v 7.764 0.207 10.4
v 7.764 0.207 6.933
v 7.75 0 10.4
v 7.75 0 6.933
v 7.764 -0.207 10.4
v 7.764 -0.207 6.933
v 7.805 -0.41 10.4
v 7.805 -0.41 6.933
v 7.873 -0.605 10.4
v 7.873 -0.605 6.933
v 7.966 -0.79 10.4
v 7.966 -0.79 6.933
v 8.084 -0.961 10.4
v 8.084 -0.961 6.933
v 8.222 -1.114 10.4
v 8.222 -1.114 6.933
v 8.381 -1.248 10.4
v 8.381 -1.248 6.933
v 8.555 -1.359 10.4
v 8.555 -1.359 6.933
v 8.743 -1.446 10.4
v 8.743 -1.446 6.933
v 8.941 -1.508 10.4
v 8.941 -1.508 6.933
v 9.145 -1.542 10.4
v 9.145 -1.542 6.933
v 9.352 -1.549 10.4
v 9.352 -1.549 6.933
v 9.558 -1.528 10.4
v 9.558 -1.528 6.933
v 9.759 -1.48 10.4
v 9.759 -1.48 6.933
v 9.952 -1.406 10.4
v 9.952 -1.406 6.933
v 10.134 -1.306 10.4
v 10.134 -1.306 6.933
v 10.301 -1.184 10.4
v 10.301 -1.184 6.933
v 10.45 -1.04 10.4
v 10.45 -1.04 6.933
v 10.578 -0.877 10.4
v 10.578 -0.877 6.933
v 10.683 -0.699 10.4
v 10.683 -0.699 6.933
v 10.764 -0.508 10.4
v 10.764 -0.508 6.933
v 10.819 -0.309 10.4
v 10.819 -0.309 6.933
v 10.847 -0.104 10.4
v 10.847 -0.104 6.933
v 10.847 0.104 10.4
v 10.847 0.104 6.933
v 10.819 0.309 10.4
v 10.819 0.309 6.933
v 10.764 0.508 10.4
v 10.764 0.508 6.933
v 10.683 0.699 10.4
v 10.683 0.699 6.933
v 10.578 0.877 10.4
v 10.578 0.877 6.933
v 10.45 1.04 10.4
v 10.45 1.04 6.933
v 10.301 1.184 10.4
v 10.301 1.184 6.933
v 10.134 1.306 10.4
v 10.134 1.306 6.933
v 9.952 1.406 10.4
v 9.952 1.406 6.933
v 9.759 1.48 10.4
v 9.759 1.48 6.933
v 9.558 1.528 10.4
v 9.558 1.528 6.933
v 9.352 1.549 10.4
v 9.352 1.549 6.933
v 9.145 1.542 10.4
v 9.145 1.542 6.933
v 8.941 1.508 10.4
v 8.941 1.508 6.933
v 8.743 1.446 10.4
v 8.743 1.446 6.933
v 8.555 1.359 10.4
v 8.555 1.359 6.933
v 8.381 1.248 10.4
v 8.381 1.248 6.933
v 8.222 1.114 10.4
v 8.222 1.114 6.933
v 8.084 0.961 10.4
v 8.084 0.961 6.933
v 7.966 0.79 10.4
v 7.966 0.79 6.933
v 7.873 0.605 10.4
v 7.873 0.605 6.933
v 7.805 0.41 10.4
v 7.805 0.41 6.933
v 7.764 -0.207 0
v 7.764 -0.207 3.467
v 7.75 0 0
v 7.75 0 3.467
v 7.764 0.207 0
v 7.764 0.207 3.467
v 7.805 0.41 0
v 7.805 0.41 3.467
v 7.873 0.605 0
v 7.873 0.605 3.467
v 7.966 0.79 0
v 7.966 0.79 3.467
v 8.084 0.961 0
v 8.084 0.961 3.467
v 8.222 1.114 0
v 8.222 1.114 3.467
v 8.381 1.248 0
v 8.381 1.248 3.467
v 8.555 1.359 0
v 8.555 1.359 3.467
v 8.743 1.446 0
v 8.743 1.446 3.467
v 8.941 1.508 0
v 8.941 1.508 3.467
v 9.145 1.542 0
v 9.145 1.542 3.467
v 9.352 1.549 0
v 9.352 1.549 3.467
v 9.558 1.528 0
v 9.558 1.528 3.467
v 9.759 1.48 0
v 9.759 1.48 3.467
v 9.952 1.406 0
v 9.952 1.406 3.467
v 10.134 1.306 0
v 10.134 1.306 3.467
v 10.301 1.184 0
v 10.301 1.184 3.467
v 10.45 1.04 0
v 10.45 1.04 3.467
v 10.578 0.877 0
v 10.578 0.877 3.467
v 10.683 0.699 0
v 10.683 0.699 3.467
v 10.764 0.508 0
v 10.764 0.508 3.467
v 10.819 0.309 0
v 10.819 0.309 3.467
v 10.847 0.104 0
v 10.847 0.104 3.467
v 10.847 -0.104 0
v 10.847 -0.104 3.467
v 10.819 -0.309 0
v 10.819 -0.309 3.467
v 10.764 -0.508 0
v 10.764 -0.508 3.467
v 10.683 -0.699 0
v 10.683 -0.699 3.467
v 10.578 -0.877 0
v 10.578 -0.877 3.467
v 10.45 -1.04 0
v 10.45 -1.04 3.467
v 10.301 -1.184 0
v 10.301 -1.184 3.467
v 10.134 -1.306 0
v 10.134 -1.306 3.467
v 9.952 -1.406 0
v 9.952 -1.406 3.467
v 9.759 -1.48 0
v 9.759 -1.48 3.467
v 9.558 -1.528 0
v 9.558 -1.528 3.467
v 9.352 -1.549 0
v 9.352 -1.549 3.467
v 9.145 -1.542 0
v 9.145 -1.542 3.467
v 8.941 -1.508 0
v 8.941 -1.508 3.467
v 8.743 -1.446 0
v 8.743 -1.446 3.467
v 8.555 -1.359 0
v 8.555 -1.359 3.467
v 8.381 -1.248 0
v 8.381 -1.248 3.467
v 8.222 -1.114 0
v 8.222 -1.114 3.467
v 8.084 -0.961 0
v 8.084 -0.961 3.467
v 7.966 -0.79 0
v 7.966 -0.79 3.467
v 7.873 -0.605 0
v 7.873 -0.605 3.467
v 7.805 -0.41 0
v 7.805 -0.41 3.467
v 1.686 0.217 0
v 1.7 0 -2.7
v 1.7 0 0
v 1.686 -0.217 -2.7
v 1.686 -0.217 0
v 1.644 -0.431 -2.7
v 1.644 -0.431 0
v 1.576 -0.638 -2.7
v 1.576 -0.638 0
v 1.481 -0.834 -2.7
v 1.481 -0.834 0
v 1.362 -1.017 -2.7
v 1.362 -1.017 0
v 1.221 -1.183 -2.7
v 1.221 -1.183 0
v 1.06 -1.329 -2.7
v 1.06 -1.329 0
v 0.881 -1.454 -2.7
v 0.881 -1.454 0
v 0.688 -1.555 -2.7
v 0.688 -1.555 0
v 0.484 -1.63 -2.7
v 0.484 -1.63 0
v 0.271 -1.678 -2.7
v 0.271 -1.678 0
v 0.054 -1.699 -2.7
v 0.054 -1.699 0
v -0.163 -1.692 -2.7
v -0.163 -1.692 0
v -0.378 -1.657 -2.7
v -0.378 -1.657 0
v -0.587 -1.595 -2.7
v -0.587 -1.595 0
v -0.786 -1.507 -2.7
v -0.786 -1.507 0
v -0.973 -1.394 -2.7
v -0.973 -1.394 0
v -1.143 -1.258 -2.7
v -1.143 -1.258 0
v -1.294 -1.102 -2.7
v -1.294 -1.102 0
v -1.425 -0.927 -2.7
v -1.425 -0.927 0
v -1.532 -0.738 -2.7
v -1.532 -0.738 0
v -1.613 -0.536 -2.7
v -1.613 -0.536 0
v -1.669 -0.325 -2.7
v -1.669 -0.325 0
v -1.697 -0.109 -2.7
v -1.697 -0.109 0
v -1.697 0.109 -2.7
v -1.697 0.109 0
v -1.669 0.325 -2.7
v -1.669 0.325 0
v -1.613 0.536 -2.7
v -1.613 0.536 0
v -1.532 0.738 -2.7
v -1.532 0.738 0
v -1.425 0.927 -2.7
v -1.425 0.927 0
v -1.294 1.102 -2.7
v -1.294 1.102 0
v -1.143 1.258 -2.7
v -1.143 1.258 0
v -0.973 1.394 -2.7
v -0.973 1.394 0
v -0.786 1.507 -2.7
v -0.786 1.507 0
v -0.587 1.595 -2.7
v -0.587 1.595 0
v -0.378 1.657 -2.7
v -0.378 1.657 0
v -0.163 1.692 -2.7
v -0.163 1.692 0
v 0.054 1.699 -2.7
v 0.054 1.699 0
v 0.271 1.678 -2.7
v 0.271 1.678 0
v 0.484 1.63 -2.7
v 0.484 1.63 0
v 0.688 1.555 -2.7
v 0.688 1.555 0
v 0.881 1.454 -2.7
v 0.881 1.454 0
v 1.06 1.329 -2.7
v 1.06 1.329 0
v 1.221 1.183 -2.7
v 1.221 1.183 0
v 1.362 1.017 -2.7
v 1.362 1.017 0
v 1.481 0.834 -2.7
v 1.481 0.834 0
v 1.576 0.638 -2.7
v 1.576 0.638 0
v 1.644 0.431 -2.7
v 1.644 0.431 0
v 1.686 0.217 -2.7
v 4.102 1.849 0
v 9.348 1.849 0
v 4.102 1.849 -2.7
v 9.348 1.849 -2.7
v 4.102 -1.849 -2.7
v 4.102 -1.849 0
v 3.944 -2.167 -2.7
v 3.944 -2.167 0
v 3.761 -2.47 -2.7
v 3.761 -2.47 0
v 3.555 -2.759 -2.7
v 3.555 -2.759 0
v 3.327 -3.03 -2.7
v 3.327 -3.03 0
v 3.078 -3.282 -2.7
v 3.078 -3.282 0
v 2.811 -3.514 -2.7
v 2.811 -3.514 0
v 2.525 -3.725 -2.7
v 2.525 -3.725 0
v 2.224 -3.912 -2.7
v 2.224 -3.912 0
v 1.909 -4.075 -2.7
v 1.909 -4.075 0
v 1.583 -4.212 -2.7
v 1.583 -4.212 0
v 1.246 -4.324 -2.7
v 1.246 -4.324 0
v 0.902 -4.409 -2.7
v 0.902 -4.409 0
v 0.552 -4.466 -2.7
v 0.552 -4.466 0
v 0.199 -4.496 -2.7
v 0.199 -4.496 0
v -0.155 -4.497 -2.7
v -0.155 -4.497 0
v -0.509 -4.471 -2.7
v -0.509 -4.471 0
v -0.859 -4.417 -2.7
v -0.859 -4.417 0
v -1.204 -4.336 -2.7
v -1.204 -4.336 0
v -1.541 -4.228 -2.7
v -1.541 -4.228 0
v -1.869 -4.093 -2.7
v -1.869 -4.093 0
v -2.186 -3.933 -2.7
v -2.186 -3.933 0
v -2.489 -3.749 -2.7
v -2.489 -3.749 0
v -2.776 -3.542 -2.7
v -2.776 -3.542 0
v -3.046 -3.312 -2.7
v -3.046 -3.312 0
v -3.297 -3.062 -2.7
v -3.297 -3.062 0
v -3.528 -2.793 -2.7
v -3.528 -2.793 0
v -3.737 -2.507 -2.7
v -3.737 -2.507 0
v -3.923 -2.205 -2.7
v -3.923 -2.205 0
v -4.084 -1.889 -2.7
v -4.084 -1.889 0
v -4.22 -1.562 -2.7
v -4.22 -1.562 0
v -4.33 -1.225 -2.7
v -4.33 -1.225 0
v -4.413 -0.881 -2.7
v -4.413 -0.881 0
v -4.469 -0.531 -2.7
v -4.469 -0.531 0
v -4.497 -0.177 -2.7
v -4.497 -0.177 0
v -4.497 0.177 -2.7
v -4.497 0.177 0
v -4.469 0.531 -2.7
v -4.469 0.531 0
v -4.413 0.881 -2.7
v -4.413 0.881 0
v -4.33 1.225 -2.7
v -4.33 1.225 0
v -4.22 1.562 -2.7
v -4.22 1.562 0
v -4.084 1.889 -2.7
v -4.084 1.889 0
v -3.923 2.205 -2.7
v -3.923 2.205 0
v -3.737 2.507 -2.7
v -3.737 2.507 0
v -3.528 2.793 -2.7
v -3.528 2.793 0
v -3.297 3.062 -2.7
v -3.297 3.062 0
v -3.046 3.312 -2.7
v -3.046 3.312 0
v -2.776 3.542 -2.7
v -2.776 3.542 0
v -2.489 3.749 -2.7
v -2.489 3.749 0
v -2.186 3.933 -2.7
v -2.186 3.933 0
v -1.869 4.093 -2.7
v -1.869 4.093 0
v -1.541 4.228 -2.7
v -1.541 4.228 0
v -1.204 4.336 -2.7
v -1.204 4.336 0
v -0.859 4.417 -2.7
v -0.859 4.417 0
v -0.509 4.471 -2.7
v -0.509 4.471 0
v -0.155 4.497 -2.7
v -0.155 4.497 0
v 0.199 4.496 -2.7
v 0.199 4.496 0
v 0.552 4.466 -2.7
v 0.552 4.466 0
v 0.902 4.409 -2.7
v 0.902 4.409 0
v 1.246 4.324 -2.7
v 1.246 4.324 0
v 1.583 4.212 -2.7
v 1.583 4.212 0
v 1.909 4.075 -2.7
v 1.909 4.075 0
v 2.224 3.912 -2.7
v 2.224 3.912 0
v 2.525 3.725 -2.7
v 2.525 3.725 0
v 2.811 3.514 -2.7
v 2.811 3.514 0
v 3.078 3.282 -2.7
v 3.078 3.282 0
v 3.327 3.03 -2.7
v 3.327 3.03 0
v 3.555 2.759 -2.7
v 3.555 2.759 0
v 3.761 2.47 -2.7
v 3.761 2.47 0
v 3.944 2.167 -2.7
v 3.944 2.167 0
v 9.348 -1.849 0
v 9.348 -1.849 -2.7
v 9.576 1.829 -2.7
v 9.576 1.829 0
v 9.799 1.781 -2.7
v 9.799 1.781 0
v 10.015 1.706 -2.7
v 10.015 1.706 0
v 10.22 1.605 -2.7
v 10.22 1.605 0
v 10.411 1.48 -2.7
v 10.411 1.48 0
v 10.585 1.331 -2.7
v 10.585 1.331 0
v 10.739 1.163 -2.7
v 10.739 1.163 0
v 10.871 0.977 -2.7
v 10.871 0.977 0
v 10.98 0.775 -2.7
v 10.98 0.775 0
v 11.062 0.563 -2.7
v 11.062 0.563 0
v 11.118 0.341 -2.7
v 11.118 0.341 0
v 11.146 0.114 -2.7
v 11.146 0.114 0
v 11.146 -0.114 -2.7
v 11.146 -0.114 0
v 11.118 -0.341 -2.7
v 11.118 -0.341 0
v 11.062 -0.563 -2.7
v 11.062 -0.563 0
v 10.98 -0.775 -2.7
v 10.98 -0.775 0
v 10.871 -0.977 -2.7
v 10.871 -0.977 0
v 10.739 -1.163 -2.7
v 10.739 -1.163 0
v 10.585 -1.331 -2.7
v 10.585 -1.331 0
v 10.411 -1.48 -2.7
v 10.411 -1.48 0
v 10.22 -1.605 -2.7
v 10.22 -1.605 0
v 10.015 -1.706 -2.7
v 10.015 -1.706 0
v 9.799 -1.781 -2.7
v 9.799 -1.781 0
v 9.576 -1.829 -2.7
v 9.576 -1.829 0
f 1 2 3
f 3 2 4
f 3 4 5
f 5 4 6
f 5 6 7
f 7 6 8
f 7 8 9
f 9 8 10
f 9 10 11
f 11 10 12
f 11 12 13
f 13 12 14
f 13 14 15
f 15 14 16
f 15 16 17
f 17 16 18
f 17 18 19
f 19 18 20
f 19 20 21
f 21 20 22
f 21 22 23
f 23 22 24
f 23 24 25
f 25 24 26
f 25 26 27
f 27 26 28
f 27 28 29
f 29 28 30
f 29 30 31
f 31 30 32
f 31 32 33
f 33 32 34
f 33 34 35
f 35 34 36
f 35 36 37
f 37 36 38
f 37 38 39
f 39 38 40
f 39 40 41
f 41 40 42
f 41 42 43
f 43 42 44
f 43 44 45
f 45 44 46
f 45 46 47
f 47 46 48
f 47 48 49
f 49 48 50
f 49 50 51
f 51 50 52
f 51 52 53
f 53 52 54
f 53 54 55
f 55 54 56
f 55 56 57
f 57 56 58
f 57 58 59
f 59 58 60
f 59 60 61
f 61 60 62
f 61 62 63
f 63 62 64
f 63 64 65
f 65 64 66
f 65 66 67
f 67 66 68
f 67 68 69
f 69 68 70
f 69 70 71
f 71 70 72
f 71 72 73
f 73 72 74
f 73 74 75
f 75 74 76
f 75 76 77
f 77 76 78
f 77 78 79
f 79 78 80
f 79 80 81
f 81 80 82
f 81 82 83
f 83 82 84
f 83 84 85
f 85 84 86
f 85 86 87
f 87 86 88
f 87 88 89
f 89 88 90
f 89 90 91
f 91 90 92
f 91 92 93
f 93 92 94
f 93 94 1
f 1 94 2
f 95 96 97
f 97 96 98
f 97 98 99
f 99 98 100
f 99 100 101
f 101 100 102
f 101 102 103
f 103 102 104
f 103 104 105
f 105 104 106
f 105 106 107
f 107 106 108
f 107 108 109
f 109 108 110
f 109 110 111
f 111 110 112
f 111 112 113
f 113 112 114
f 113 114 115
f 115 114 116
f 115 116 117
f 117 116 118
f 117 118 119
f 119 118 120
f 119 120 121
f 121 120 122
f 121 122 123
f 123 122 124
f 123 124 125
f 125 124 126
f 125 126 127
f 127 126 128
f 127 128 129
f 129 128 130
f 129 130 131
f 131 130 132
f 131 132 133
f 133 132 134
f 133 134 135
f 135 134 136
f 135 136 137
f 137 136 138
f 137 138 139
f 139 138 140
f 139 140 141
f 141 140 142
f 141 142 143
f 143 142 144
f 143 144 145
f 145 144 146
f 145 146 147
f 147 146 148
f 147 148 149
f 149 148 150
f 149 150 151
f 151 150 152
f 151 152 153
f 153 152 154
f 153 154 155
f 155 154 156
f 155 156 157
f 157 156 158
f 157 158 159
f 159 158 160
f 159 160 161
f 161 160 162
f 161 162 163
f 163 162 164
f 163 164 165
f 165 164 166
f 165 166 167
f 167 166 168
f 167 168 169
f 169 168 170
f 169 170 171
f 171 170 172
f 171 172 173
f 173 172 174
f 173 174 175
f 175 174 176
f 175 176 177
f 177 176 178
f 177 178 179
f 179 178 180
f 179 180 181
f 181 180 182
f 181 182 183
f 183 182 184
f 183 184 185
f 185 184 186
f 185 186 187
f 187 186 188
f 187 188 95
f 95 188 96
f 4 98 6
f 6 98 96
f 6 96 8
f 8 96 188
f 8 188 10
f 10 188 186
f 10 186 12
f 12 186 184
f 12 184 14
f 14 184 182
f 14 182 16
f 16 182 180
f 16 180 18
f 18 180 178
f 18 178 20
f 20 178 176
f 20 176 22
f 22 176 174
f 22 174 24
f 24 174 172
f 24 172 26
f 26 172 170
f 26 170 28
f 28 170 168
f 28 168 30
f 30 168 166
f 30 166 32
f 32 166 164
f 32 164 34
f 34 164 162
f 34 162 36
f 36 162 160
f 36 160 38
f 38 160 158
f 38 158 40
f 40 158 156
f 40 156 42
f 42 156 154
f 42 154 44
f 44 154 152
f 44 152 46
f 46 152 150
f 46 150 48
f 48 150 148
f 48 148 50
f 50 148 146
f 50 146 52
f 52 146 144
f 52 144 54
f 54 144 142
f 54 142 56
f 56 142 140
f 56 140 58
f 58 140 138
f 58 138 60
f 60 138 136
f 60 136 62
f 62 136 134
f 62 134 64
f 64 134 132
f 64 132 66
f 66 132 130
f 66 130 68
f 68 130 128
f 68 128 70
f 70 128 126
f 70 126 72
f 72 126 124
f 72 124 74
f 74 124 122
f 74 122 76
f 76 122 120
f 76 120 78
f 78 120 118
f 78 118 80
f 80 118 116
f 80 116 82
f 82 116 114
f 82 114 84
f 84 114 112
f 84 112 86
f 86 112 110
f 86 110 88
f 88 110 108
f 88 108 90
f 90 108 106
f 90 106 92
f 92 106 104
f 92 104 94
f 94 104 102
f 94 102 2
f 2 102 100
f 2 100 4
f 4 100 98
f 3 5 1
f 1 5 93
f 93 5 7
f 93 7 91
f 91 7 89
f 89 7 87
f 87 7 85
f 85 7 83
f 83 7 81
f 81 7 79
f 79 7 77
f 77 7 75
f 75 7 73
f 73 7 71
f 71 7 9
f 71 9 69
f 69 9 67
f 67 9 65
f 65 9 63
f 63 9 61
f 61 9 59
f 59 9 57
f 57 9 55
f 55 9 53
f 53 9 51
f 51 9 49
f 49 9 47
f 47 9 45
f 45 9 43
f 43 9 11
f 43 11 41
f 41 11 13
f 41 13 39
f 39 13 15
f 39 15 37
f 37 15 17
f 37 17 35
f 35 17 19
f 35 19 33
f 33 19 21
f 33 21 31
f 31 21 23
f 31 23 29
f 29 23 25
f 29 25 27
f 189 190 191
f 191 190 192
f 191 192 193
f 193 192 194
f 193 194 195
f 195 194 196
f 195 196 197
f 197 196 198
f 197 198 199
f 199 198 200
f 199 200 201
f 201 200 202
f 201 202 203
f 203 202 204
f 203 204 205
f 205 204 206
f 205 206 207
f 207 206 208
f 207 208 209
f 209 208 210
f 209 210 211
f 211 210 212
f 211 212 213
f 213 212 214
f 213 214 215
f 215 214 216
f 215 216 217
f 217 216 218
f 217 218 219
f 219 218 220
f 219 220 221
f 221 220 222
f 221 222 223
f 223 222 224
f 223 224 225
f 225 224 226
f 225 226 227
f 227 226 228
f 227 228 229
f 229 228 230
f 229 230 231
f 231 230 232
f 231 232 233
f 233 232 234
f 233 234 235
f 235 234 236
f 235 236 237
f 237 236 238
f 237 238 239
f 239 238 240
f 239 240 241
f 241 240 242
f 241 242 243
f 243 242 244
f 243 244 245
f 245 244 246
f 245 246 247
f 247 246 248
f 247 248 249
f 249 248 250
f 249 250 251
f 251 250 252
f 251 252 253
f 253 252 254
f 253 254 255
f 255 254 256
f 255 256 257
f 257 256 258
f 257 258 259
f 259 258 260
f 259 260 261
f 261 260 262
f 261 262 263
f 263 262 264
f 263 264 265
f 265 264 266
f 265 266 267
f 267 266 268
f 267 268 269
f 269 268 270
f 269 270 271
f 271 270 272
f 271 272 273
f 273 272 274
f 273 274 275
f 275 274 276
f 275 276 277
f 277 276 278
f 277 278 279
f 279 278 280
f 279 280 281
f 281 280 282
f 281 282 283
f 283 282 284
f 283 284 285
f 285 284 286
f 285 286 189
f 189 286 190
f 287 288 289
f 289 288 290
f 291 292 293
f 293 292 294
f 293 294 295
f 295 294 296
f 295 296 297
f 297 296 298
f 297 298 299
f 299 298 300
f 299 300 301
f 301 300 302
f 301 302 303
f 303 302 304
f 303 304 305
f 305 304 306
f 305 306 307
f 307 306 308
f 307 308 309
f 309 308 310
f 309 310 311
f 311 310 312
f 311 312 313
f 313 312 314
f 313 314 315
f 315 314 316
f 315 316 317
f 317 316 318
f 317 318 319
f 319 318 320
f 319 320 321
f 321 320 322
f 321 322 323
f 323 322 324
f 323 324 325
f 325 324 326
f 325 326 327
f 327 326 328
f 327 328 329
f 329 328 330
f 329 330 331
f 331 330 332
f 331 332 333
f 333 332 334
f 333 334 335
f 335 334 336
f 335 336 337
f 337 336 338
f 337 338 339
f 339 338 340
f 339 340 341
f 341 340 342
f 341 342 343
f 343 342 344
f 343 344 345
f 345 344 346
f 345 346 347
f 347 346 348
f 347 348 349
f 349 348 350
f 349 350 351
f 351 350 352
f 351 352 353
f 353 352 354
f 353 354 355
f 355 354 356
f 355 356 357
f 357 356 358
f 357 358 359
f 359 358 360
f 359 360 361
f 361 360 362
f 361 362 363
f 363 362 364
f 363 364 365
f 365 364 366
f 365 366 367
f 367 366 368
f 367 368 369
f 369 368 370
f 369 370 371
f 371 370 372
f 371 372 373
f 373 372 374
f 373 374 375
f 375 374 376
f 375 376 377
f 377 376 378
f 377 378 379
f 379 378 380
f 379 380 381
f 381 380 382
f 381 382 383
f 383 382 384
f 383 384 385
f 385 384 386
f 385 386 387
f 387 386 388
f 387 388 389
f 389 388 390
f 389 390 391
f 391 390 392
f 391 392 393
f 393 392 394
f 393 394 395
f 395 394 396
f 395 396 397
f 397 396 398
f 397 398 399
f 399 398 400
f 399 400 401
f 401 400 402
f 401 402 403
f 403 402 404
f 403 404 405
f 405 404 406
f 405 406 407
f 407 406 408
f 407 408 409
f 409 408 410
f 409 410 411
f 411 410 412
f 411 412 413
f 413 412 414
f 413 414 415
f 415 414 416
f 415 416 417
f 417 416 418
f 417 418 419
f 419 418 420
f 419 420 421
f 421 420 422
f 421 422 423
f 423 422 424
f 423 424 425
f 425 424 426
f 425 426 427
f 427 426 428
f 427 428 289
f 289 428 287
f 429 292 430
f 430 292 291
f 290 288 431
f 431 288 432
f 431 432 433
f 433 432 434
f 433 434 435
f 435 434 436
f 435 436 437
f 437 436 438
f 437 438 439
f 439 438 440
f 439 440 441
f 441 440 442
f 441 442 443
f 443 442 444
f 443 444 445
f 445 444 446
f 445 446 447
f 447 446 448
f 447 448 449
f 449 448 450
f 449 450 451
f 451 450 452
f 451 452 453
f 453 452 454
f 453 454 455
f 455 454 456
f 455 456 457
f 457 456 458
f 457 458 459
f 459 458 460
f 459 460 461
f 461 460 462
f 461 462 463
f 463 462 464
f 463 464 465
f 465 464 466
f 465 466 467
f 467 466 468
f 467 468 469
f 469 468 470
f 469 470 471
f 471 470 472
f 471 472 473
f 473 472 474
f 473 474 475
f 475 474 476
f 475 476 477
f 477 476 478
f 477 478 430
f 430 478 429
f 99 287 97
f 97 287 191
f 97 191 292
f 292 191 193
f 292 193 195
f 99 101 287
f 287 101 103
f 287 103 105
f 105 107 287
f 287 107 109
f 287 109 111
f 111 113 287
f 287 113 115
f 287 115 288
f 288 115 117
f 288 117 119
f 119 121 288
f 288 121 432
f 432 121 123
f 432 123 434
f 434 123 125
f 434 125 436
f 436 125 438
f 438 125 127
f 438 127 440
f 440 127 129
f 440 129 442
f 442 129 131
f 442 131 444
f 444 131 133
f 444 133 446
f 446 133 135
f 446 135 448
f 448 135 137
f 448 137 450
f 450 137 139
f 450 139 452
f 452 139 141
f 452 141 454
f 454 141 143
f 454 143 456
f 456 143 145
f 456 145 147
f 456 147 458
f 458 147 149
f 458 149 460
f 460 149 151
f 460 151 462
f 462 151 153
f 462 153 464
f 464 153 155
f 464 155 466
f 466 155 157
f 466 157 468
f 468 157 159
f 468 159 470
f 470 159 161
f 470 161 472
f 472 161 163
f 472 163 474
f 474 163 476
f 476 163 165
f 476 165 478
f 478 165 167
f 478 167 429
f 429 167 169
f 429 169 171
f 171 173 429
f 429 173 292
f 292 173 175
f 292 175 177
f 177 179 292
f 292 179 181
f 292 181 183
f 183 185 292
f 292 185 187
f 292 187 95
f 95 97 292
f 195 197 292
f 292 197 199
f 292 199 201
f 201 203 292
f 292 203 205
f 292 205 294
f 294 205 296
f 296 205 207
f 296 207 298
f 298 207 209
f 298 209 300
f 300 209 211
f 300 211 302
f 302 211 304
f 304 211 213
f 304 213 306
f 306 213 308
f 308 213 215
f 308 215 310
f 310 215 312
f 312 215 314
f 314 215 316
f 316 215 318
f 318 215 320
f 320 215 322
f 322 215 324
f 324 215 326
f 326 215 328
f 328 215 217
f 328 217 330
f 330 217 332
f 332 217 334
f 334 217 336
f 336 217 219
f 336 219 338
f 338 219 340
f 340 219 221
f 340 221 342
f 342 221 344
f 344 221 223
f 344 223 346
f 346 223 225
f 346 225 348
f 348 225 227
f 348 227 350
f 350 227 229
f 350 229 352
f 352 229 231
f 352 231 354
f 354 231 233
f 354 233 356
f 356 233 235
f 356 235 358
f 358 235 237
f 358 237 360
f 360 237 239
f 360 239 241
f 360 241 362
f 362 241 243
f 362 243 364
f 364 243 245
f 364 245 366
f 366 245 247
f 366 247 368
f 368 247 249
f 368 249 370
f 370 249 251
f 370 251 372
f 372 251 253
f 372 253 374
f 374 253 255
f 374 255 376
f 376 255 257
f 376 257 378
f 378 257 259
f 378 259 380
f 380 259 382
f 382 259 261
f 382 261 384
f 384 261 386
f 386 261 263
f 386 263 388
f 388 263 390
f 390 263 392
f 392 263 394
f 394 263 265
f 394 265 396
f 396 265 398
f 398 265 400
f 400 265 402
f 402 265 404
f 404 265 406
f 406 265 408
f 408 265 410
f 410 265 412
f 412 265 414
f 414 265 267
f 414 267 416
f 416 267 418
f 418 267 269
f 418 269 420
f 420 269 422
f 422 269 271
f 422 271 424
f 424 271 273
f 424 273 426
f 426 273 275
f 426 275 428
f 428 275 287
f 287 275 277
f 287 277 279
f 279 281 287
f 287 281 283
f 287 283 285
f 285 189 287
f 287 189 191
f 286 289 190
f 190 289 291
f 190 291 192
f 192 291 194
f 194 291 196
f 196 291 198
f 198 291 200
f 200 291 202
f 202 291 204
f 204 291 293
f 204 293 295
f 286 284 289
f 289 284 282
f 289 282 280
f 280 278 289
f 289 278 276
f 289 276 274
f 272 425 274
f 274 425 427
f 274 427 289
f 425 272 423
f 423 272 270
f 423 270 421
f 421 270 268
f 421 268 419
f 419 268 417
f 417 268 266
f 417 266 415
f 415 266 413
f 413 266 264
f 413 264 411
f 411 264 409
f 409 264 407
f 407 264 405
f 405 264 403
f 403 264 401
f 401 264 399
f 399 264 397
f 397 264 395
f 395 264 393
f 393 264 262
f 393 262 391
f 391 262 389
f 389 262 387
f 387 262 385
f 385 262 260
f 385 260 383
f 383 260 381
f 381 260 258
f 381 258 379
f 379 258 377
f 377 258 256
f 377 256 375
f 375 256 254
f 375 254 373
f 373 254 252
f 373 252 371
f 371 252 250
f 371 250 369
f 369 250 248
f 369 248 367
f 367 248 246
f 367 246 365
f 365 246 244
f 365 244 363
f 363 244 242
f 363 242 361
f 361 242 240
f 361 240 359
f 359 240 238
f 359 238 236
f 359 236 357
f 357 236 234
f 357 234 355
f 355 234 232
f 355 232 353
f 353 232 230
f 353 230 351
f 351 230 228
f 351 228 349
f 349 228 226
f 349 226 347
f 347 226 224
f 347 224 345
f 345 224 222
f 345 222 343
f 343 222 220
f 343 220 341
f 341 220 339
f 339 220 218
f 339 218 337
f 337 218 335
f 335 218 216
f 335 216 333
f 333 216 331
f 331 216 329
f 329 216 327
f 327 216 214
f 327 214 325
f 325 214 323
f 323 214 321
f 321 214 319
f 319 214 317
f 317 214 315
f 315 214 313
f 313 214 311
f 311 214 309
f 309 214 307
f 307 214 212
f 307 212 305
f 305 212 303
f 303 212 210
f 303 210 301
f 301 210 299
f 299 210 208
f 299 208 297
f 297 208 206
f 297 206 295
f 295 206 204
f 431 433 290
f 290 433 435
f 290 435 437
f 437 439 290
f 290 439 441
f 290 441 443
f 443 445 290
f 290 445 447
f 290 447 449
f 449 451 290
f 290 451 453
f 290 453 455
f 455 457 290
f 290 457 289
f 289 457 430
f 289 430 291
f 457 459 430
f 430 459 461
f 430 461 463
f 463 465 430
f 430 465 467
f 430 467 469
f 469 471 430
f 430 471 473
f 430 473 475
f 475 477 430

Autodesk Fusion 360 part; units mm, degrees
sketch "Sketch5" plane through (0, 0, 0) normal (0, 0, 1) x (1, 0, 0)
  line L0 (9.3481, 1.8494) -> (4.1024, 1.8494)
  line L1 (9.3481, -1.8494) -> (4.1024, -1.8494)
  arc A0 (9.2519, -1.8494) -> (9.2519, 1.8494) centre (9.3, 0) ccw
  arc A1 (4.1024, 1.8494) -> (4.1024, -1.8494) centre (0, 0) ccw
  dimension "d23" = 9
  dimension "d24" = 3.7
  dimension "d25" = 9.3
sketch "Sketch6" plane through (0, 0, 0) normal (0, 0, 1) x (1, 0, 0)
  circle A0 centre (0, 0) radius 1.7
  dimension "d26" = 3.4
extrude "Extrude6" add sketch "Sketch5" against normal blind 2.7
hole "Hole2" at (0, 0, 0) direction (0, 0, -1) diameter 3.4 depth 2.7 tip angle 118
sketch "Sketch7" plane through (0, 0, 0) normal (0, 0, 1) x (1, 0, 0)
  circle A0 centre (9.3, 0) radius 1.55
  dimension "d32" = 3.1
  dimension "d33" = 9.3
extrude "Extrude7" add sketch "Sketch7" along normal blind 10.4
sketch "Sketch1" plane through (0, 0, 0) normal (0, 0, 1) x (1, 0, 0)
  circle A0 centre (0, 0) radius 10.7065
  dimension "d1" = 21.413
extrude "Extrude1" [suppressed]
sketch "Sketch2" plane through (0, 0, 0) normal (0, 0, 1) x (1, 0, 0)
  circle A0 centre (0, 0) radius 1.5
  dimension "d4" = 3
sketch "Sketch3" plane through (0, 0, 0) normal (0, 0, 1) x (1, 0, 0)
  circle A0 centre (0, 0) radius 1.5
  circle A1 centre (7.5, 0) radius 1.5
  dimension "d7" = 3
  dimension "d9" = 3
  dimension "d10" = 7.5
sketch "Sketch4" plane through (0, 0, 0) normal (0, 0, 1) x (1, 0, 0)
  circle A0 centre (0, 0) radius 1.5
  dimension "d8" = 3
extrude "Extrude3" [suppressed]
hole "Hole1" [suppressed]
extrude "Extrude4" [suppressed]
extrude "Extrude5" [suppressed]
split "Split1" [suppressed]
